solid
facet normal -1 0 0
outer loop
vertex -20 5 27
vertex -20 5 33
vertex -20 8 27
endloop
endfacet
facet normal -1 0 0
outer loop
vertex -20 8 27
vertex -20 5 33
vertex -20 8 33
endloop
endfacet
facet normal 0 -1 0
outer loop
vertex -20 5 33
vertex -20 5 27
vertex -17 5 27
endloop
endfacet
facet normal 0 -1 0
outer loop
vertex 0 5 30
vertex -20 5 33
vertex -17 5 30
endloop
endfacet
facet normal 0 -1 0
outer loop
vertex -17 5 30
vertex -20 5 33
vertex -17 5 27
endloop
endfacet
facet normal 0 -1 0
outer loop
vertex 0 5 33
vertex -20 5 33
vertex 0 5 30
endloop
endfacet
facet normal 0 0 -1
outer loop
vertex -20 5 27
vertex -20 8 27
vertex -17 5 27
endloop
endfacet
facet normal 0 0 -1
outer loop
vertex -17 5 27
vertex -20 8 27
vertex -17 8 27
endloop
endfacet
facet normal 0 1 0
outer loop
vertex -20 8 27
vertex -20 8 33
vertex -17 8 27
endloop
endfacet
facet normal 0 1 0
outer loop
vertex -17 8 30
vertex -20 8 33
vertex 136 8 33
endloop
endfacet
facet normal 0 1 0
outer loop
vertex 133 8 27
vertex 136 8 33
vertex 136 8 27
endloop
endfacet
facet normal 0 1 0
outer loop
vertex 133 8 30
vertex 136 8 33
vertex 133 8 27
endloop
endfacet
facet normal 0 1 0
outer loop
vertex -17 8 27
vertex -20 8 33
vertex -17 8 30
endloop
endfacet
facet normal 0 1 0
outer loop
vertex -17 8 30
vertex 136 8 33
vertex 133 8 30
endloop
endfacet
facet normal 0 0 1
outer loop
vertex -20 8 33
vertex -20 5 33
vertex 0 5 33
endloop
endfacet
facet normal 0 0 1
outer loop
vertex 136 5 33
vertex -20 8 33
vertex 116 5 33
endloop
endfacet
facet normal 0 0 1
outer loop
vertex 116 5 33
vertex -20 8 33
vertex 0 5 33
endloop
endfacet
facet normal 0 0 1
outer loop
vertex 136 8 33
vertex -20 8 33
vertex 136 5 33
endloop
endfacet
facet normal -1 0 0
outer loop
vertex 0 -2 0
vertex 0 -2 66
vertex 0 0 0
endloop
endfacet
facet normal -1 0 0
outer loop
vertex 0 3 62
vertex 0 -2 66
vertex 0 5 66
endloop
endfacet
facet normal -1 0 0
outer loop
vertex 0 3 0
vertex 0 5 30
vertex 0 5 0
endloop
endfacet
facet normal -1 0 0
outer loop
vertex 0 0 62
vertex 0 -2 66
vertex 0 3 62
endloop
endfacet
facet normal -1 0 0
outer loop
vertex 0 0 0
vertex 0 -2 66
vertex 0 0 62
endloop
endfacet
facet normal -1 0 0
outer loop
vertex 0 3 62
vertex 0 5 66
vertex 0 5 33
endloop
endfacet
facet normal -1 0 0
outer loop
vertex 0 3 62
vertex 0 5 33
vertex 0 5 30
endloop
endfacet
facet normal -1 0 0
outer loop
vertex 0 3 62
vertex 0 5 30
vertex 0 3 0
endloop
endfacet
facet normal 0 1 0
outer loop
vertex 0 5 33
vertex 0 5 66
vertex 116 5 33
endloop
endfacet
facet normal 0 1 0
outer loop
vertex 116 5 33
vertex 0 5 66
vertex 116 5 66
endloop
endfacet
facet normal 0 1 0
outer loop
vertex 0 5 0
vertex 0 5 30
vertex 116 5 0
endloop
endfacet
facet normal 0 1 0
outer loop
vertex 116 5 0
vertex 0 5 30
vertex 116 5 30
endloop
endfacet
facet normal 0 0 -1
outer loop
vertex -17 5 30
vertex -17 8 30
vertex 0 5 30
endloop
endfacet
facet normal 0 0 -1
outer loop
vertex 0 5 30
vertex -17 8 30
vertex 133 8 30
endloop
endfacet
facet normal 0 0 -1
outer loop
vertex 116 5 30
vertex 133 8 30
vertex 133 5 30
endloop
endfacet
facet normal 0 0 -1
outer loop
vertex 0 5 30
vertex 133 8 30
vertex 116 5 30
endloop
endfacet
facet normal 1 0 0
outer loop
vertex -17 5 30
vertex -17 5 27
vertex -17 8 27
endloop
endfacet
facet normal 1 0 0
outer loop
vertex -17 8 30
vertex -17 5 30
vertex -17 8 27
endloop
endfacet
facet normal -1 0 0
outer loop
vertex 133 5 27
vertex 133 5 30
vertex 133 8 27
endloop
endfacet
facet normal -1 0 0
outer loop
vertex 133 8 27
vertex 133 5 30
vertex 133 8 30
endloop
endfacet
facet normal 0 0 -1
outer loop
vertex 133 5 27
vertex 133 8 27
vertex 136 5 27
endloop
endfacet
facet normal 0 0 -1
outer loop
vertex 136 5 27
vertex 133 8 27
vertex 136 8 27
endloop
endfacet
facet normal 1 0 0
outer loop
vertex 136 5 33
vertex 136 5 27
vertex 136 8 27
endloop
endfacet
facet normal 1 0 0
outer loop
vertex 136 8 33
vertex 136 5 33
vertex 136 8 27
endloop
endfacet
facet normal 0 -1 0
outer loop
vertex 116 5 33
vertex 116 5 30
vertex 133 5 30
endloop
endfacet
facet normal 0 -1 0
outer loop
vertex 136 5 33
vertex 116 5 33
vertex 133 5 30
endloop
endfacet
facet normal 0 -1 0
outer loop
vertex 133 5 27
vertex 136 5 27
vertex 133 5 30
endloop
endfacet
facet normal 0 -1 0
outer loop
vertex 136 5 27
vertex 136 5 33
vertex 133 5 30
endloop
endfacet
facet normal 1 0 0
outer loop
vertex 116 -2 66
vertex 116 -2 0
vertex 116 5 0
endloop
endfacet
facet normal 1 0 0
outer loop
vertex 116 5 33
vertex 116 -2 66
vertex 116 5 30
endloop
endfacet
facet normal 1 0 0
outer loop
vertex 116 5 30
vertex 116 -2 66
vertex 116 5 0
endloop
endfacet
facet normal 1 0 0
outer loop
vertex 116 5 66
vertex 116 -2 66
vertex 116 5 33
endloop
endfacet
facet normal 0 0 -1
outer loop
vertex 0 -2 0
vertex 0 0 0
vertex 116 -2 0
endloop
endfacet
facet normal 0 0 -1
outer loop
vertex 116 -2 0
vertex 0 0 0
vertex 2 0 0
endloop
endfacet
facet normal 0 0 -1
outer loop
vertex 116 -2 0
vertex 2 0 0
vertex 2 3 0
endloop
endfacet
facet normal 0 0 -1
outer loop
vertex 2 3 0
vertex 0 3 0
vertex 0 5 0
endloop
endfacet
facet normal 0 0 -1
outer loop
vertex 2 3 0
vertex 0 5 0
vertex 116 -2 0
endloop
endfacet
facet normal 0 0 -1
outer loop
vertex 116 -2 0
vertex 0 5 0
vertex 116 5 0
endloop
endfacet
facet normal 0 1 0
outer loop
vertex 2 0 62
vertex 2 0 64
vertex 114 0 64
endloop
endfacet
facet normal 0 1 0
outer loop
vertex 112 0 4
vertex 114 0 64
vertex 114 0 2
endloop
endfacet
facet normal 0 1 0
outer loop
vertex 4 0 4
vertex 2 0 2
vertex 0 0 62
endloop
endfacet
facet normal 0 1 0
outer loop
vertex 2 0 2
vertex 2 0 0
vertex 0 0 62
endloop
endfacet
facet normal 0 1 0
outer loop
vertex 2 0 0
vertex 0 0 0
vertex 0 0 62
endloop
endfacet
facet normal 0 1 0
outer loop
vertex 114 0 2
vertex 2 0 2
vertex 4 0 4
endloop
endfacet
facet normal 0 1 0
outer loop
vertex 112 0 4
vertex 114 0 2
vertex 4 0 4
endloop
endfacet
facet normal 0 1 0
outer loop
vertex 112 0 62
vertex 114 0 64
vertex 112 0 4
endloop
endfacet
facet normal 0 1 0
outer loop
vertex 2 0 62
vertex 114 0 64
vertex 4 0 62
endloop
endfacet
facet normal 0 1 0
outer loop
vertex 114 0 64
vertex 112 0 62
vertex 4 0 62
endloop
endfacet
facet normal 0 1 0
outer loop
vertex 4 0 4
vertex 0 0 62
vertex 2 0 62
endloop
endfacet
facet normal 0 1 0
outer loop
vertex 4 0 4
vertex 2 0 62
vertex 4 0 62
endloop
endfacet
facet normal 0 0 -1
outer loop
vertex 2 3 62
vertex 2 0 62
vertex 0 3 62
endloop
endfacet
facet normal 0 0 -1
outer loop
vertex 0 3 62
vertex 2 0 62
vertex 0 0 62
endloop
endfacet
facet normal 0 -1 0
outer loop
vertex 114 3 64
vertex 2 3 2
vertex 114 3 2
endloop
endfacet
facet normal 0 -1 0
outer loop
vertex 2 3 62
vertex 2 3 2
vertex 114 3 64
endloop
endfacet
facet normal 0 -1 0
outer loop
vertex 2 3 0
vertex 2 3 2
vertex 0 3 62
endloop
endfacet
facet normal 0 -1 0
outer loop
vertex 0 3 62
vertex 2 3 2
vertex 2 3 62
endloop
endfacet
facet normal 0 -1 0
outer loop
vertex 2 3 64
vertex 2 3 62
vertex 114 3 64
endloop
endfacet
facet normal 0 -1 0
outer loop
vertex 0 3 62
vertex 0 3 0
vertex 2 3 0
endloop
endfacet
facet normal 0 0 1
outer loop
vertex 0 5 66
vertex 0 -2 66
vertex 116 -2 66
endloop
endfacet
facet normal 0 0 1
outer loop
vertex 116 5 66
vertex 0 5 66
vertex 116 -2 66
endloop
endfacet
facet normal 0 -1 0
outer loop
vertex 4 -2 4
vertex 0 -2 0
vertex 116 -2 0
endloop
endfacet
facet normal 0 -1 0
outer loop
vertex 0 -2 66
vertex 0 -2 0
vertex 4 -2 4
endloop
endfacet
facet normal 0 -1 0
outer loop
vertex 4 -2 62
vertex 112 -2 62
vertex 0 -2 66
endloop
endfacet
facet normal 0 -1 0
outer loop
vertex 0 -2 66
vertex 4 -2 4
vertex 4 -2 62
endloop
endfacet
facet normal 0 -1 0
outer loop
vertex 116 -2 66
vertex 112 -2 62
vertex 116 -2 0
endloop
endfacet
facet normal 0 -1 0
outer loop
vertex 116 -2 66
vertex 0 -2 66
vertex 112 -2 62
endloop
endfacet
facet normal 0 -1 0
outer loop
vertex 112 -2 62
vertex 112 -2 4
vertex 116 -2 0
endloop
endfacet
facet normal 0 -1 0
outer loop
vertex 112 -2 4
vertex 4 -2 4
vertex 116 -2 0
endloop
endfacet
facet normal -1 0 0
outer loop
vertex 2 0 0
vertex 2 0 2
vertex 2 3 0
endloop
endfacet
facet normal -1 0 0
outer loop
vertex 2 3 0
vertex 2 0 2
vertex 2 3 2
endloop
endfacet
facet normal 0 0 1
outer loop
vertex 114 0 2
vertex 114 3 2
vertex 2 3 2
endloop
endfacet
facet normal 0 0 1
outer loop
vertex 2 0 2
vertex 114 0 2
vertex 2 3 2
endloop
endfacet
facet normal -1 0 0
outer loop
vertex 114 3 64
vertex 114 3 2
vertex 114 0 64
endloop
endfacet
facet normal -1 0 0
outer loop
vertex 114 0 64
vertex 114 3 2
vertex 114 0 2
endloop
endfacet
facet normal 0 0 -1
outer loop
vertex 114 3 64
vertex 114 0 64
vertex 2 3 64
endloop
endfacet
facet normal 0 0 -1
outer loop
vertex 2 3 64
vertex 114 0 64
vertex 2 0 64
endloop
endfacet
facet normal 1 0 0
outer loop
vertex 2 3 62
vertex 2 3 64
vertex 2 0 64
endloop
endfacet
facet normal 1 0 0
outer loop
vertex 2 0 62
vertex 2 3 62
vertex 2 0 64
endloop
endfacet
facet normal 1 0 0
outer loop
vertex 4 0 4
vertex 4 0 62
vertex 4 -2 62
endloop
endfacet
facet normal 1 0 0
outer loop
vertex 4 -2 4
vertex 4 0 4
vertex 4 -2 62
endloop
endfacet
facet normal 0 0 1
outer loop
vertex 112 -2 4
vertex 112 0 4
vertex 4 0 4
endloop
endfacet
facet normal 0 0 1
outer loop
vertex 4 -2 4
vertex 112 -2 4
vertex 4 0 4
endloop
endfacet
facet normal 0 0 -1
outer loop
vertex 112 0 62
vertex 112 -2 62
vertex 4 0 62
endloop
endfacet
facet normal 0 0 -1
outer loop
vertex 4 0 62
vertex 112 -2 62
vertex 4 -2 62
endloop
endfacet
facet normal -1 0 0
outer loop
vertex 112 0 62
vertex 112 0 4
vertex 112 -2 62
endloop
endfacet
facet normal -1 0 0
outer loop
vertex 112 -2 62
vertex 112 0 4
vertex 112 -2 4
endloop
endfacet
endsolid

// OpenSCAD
union() {
	difference() {
		translate([0, -2, 0]) {
			cube([116, 2, 66]);
		}
		translate([4, -2, 4]) {
			cube([108, 2, 58]);
		}
	}
	difference() {
		cube([116, 5, 66]);
		translate([2, 0, 2]) {
			cube([112, 3, 62]);
		}
		translate([]) {
			cube([2, 3, 62]);
		}
	}
	translate([-20, 5, 30]) {
		cube([156, 3, 3]);
	}
	translate([-20, 5, 27]) {
		cube([3, 3, 3]);
	}
	translate([133, 5, 27]) {
		cube([3, 3, 3]);
	}
}
